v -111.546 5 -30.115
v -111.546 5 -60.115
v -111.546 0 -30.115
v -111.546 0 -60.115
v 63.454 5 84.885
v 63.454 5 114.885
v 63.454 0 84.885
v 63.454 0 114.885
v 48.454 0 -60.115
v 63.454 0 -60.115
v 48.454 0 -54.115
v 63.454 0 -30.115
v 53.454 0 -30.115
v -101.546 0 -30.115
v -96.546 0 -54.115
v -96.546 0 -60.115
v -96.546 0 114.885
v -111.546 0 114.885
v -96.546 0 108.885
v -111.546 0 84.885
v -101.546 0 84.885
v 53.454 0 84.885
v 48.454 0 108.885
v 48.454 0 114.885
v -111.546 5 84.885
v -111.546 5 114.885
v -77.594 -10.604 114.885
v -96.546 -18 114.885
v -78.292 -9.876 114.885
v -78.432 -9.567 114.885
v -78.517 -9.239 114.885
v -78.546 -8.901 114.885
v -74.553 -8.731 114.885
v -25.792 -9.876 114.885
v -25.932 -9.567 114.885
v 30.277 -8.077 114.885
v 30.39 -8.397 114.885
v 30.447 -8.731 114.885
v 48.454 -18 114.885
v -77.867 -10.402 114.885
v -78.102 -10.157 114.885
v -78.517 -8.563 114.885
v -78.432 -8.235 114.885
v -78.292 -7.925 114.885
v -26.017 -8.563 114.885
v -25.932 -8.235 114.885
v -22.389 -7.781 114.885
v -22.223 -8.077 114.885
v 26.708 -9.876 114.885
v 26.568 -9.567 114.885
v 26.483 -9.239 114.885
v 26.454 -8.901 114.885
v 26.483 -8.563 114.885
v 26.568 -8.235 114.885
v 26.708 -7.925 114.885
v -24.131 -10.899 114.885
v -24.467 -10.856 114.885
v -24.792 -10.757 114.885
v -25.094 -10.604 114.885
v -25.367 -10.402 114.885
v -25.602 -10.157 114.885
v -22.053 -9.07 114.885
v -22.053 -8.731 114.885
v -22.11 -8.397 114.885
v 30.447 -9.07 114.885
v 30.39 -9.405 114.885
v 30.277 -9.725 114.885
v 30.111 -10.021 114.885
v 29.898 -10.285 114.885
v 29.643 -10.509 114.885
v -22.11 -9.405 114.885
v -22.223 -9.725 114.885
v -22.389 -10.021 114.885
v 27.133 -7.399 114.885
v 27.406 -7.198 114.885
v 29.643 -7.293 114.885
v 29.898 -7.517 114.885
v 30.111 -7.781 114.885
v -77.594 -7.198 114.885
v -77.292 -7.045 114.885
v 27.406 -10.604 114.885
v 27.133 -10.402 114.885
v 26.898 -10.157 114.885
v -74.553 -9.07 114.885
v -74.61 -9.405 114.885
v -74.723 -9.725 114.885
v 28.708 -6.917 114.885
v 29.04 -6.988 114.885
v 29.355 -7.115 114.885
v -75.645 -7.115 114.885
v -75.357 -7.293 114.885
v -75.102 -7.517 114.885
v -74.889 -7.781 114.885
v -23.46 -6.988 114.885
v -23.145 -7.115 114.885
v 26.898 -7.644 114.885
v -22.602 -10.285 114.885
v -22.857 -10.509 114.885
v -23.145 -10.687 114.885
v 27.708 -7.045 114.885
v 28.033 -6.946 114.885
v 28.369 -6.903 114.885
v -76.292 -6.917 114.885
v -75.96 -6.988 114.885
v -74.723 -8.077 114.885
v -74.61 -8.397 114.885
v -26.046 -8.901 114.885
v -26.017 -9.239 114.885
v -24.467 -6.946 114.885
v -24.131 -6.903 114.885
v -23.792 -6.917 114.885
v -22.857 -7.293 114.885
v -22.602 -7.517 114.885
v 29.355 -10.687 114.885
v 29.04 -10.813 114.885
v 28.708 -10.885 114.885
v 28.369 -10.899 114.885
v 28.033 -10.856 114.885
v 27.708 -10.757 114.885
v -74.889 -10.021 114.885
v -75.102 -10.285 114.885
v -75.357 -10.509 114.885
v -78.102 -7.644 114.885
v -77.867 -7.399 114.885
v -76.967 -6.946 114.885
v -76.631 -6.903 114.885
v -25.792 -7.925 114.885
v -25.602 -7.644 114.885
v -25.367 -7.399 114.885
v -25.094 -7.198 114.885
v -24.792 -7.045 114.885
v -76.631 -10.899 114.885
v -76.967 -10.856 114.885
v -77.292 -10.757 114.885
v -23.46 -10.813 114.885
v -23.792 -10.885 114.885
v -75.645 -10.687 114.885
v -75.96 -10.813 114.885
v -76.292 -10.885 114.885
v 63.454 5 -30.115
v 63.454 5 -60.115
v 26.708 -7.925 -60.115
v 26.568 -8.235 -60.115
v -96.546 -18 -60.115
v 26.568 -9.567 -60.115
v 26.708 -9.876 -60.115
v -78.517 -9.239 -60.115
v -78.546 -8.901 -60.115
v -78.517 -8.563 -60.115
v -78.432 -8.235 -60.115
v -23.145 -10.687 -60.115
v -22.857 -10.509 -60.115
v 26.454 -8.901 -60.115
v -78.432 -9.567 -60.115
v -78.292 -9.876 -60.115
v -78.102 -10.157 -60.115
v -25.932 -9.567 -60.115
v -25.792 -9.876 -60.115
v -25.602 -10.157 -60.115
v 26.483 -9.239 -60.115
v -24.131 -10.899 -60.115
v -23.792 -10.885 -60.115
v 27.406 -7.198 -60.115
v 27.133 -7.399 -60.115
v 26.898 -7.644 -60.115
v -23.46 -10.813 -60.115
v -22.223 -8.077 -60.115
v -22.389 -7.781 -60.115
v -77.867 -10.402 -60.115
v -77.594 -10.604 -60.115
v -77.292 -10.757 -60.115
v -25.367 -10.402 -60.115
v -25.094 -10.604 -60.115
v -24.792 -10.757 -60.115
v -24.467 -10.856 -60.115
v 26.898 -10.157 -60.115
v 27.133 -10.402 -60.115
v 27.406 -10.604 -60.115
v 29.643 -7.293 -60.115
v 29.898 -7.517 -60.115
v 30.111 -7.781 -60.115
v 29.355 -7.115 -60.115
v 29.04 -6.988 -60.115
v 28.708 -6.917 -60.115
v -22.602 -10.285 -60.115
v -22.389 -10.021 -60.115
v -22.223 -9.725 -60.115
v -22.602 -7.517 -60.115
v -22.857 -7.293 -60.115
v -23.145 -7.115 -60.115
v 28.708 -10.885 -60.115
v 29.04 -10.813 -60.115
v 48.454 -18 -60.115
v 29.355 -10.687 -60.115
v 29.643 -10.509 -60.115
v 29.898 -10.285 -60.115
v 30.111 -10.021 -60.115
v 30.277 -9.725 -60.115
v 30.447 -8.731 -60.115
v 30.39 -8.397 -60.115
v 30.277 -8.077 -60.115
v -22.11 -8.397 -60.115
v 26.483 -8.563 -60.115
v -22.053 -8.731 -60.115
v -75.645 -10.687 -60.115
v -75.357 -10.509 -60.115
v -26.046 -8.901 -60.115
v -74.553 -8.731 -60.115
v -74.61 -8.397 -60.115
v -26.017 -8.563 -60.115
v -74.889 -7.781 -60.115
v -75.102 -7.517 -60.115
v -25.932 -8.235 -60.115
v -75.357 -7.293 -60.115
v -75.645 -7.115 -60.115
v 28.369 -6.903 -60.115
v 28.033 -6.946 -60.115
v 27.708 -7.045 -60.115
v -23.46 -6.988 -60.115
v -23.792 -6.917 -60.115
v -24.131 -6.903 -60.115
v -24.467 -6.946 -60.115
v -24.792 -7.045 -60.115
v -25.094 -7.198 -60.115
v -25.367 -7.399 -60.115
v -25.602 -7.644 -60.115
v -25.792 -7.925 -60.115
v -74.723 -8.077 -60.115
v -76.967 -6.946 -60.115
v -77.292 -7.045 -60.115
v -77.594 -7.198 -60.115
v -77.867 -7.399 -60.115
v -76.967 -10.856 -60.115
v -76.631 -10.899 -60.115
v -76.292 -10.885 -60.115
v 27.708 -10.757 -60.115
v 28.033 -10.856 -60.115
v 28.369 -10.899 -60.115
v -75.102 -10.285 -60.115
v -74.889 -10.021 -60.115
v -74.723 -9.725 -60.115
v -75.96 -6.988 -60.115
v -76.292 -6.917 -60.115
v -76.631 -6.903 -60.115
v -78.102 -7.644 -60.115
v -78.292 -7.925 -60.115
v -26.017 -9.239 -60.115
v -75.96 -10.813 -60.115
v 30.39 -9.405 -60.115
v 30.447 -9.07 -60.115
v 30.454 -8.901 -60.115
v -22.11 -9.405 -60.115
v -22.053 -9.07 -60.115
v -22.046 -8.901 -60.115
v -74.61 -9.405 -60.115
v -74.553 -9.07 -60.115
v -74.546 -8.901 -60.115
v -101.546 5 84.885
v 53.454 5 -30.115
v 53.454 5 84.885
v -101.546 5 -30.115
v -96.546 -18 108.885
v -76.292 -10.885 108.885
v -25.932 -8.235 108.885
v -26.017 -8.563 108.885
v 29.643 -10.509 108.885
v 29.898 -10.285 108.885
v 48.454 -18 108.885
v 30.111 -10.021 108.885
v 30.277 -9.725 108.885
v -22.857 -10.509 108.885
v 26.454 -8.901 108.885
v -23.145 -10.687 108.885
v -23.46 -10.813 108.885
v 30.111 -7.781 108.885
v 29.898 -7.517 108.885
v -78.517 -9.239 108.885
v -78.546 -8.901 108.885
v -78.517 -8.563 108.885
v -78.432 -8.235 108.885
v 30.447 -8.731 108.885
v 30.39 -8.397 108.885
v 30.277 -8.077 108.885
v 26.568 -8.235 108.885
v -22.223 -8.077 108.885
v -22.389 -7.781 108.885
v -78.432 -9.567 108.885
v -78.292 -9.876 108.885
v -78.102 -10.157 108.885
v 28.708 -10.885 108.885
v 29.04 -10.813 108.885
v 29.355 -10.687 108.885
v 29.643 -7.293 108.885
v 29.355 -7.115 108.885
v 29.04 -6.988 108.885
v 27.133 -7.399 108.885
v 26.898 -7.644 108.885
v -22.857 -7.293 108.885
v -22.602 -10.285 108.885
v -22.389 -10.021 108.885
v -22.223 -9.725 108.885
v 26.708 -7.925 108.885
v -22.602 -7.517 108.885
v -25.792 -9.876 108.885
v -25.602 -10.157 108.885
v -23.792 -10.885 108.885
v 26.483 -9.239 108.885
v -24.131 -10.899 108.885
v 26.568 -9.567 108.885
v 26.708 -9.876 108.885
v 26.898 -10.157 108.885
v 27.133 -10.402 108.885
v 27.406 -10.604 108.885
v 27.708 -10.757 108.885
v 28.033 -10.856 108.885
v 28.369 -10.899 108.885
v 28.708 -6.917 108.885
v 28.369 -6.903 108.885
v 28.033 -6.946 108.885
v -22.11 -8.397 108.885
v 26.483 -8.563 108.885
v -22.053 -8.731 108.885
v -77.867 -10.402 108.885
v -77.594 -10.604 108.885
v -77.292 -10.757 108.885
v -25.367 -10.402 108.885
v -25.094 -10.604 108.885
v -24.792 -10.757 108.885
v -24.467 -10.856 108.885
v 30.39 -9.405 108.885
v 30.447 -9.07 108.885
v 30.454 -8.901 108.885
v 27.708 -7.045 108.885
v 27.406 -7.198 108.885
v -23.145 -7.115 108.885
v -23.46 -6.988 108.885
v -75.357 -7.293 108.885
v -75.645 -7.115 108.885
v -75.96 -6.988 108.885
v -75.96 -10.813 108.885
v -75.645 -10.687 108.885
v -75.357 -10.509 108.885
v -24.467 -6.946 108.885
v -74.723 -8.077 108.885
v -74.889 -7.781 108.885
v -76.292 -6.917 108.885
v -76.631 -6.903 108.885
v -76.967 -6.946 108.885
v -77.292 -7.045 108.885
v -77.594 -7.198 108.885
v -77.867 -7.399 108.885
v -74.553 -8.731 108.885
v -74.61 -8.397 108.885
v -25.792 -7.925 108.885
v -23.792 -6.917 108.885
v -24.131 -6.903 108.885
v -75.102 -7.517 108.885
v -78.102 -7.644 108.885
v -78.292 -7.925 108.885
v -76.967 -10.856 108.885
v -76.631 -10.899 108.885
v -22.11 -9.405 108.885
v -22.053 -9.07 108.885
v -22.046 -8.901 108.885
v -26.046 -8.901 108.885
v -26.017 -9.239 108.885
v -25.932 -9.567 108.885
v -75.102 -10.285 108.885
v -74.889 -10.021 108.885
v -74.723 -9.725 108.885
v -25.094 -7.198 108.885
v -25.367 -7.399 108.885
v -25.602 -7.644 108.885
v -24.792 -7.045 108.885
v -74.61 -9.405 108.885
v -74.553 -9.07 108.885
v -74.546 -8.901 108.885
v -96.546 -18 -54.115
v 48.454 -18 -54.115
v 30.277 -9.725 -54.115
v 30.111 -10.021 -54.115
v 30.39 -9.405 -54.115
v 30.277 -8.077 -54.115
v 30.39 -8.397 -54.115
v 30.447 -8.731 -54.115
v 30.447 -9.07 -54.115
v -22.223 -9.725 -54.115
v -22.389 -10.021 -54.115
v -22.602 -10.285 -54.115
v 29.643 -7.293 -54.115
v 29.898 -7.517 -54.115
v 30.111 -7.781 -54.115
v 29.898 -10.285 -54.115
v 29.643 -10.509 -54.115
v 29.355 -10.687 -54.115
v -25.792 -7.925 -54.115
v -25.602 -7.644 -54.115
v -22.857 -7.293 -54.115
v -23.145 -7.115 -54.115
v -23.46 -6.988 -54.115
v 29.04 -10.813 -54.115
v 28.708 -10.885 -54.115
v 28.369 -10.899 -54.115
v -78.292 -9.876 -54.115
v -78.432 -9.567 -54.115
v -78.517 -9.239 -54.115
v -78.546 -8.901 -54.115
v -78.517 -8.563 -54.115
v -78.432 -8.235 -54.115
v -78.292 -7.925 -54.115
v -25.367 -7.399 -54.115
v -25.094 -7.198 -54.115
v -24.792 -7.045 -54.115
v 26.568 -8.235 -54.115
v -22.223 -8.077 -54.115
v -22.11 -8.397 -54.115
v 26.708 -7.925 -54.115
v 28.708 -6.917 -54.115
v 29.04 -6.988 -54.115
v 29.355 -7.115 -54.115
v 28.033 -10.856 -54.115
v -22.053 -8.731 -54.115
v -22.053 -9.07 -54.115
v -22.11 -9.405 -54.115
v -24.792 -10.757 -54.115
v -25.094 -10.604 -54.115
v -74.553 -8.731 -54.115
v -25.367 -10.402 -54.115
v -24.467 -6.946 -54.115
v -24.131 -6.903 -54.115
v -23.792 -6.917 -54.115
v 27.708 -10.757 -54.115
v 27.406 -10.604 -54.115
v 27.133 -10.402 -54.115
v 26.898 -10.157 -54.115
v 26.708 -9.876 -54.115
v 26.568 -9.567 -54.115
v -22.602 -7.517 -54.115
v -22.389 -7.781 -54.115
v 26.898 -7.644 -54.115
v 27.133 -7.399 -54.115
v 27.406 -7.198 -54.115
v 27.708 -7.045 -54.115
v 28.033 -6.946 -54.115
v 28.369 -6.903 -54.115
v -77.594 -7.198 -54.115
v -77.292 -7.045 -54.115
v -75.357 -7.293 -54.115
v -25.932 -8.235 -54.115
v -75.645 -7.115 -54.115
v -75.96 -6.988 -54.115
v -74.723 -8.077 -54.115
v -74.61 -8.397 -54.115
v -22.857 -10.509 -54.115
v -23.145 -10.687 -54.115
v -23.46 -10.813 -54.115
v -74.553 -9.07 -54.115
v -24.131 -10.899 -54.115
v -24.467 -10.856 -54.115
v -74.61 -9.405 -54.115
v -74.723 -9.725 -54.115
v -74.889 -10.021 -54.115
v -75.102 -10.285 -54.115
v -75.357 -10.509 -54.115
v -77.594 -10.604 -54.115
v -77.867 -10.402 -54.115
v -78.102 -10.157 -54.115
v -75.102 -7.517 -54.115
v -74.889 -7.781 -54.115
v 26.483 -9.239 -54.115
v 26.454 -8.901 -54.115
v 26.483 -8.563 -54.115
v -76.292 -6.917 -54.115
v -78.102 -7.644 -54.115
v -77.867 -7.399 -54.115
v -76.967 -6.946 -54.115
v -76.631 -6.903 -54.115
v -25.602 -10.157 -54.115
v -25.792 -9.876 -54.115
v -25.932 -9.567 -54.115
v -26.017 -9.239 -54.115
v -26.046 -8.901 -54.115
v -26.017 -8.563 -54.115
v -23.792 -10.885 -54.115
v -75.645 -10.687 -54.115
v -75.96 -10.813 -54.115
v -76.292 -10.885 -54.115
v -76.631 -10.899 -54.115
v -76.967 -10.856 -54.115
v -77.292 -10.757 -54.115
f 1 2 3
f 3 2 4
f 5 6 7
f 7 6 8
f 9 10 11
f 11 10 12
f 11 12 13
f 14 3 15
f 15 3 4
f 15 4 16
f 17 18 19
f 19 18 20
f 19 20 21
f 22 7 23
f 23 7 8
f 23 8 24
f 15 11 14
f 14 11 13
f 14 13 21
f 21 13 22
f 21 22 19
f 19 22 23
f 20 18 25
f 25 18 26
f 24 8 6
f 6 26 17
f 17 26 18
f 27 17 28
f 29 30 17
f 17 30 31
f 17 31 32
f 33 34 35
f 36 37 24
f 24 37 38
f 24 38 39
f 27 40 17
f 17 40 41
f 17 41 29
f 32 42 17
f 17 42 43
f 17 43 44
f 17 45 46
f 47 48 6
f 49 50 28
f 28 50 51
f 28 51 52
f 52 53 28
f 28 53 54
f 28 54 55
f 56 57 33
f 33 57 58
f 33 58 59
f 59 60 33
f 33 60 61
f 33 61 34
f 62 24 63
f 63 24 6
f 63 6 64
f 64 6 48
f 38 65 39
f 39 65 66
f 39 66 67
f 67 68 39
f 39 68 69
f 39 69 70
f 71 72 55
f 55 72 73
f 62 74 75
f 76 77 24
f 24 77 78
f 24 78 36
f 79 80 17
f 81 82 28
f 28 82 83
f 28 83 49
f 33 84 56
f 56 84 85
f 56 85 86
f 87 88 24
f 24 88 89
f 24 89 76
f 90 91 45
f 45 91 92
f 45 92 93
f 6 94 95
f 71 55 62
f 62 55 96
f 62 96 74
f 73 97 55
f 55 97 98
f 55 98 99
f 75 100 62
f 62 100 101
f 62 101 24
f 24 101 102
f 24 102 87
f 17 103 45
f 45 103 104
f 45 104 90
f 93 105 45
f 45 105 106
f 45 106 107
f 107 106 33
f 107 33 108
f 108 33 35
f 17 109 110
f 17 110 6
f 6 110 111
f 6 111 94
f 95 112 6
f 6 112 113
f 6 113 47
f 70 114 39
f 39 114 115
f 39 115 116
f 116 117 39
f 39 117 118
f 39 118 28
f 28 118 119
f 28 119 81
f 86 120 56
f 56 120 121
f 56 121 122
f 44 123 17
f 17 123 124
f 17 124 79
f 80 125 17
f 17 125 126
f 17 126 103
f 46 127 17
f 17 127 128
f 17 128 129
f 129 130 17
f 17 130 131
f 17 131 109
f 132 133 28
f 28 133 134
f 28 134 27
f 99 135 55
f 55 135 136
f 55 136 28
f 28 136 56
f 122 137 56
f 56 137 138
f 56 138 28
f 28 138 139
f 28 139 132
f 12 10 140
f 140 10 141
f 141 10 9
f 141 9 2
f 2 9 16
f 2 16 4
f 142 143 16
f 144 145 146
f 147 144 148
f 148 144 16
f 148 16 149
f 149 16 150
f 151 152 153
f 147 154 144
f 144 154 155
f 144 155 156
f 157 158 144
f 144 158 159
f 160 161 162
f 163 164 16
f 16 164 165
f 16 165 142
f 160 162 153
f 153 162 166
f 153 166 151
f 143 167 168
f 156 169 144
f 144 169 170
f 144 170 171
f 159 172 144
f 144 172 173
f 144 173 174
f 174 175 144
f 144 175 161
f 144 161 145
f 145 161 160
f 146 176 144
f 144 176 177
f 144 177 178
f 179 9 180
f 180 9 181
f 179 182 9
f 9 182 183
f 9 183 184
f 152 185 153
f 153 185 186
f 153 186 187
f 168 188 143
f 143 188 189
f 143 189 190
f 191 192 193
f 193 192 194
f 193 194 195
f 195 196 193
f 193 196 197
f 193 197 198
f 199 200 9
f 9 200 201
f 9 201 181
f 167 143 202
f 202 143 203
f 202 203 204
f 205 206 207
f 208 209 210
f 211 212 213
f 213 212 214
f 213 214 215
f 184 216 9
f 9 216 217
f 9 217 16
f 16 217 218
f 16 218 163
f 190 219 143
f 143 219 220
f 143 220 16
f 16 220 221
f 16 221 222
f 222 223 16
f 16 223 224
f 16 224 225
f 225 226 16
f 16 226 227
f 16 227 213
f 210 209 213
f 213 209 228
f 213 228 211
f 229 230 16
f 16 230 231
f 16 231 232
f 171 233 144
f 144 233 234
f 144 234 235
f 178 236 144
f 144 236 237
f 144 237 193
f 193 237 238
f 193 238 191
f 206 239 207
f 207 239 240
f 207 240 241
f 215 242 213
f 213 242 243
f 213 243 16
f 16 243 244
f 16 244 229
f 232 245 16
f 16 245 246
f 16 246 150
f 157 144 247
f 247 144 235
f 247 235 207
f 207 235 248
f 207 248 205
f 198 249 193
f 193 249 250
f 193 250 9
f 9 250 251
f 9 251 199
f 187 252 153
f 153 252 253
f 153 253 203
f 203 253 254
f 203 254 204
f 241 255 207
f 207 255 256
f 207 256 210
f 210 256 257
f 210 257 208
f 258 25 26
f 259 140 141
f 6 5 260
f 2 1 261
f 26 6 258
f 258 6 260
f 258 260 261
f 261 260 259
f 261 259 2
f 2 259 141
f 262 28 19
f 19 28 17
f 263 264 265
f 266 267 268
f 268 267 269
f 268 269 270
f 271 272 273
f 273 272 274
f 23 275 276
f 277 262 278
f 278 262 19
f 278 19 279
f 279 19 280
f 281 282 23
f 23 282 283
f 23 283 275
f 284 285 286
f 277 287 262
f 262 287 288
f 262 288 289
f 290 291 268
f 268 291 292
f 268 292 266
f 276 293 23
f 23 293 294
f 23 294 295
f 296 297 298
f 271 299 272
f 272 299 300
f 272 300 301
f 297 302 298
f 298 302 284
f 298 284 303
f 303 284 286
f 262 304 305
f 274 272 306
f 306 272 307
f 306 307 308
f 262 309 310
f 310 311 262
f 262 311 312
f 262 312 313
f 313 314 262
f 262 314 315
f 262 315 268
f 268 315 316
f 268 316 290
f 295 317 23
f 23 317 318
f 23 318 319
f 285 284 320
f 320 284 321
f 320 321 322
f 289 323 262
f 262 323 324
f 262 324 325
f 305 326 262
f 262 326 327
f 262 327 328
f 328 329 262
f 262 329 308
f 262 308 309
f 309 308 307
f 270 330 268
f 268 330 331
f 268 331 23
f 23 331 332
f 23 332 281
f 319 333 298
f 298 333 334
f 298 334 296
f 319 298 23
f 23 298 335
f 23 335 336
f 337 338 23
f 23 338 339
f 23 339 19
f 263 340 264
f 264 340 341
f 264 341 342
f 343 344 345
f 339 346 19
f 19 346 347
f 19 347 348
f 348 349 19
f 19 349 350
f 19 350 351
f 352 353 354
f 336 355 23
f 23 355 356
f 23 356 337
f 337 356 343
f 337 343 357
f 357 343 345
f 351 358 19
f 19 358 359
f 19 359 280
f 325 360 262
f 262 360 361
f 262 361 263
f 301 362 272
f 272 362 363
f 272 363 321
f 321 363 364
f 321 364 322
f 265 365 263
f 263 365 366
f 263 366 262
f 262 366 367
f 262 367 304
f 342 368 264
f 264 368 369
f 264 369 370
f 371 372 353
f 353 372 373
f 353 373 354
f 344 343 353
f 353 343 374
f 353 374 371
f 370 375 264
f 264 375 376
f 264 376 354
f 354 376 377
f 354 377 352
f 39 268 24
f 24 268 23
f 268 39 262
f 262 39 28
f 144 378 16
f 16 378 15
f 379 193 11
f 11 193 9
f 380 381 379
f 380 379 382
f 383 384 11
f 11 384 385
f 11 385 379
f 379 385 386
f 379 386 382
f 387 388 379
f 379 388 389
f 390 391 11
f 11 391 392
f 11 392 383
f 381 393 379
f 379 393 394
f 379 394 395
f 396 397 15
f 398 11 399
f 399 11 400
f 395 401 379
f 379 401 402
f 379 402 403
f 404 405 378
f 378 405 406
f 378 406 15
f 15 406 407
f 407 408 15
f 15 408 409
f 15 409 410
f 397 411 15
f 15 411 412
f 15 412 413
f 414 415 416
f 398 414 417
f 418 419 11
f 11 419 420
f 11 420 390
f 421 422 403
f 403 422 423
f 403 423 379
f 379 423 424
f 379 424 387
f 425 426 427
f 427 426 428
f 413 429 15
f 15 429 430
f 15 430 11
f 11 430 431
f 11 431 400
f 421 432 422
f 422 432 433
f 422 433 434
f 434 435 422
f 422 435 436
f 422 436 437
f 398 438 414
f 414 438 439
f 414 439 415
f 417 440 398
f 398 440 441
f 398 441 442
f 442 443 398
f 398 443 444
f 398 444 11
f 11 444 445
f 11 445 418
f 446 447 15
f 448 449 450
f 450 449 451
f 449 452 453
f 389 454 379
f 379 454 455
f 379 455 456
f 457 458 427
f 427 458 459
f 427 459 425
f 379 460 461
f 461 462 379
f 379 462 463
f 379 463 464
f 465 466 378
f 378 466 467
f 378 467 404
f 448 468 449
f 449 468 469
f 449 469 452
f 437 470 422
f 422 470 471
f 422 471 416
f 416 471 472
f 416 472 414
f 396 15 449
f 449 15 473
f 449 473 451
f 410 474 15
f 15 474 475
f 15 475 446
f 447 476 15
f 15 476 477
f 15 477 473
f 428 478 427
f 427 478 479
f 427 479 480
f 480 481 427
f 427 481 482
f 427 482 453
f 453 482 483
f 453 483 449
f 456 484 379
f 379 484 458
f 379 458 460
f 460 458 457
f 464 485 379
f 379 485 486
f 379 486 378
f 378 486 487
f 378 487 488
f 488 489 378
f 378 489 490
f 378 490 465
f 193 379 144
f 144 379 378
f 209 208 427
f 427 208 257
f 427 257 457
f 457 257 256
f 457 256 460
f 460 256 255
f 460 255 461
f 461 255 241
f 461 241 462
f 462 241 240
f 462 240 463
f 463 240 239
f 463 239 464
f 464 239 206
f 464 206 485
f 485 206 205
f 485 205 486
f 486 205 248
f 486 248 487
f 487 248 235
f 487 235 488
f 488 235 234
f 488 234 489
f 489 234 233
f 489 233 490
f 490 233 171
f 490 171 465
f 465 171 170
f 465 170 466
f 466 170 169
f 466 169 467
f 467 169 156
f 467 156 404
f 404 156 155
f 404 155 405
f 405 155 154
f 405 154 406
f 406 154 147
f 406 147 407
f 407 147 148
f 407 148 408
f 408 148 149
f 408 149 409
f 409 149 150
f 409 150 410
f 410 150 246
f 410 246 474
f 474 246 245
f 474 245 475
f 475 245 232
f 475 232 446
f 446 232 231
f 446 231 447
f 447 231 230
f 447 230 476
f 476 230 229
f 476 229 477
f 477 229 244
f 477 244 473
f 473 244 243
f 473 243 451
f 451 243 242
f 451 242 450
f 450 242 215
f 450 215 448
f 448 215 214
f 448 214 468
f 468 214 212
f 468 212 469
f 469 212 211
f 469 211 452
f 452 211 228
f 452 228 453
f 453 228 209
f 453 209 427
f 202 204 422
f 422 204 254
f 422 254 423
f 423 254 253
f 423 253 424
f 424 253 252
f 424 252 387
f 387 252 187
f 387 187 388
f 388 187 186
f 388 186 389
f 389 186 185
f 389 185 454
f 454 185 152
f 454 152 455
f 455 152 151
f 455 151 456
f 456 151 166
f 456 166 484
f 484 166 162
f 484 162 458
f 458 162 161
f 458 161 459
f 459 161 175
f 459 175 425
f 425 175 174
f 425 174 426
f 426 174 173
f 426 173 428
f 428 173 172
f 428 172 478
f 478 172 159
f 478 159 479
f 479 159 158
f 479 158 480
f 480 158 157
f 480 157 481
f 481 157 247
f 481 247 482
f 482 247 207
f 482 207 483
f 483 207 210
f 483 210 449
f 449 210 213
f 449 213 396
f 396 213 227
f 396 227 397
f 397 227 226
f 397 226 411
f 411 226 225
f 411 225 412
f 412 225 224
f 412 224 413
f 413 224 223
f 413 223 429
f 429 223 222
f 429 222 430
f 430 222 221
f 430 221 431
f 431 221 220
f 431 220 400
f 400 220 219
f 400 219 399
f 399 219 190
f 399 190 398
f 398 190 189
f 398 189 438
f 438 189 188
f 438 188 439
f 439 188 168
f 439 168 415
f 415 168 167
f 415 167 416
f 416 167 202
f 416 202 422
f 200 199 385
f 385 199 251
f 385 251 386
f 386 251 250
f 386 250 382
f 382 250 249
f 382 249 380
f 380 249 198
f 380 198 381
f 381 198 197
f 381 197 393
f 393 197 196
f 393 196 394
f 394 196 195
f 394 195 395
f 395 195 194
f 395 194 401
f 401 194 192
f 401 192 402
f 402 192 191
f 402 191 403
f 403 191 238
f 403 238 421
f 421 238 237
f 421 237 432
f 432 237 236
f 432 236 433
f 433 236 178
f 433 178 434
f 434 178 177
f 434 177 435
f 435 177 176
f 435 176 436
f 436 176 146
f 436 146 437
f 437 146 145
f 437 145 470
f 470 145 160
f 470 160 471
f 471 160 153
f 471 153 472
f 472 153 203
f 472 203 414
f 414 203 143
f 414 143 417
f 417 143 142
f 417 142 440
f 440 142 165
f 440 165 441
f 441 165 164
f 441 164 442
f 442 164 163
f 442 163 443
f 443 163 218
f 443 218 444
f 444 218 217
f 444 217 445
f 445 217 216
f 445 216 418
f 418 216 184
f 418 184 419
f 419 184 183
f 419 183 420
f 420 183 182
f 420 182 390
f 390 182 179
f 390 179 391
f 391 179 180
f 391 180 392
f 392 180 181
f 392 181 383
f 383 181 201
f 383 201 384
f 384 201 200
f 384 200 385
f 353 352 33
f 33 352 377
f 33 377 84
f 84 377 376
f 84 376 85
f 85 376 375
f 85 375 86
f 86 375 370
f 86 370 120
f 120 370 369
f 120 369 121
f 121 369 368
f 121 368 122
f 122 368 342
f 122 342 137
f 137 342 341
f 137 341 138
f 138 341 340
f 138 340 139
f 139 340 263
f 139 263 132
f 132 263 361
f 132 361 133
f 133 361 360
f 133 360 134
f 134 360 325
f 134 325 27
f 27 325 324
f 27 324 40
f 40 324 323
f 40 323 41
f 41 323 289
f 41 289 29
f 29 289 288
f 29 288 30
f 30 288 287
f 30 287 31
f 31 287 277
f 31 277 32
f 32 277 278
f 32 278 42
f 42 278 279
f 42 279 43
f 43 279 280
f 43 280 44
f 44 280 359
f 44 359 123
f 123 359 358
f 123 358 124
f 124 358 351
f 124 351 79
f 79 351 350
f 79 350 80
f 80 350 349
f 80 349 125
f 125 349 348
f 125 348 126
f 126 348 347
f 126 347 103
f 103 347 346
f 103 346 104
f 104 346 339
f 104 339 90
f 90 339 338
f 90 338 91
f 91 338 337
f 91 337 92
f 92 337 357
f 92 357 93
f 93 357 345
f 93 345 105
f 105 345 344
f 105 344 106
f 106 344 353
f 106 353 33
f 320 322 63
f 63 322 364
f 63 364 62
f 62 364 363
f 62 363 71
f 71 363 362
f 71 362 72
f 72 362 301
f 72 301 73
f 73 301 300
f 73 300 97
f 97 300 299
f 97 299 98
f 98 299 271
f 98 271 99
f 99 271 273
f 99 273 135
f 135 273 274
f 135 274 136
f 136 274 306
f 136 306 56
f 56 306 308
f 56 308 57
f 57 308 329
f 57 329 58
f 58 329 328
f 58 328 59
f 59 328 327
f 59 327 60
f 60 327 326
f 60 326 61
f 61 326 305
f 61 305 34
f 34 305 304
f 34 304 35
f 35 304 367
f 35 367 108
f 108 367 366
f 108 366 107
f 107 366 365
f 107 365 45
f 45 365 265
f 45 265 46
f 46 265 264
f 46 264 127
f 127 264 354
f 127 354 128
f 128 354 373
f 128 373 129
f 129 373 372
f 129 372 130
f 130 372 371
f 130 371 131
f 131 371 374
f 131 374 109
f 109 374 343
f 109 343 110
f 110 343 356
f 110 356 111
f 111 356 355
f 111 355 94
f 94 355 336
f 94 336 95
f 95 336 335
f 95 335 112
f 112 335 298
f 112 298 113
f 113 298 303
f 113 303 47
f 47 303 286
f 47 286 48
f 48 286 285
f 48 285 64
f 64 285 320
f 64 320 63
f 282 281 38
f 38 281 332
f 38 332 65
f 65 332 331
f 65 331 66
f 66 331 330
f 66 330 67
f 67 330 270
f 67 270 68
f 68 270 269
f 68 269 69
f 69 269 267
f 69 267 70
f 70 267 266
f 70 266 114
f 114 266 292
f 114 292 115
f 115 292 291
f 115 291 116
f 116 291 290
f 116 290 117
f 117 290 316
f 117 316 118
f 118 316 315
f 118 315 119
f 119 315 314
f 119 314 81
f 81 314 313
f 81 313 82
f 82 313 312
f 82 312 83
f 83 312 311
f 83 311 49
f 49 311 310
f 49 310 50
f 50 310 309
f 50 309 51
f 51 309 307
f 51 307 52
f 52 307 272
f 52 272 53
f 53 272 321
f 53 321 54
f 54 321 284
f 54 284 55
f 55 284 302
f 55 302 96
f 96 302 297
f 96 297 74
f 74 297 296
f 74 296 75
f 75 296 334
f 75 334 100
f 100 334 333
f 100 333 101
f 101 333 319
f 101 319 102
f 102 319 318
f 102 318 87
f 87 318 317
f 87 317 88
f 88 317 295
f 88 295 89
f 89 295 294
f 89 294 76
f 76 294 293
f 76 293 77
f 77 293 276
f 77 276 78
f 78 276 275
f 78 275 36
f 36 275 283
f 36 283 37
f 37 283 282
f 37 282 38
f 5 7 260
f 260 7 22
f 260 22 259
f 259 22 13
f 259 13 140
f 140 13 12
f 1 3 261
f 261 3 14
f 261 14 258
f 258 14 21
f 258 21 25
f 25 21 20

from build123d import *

# Parameters (mm, degrees)
SKETCH1_W               = 175
SKETCH1_H               = 175
BOSS_EXTRUDE1_DEPTH     = 5
SKETCH3_W               = 145
SKETCH3_H               = 6
BOSS_EXTRUDE3_DEPTH     = 18
SKETCH4_R               = 2
CUT_EXTRUDE2_DEPTH      = 1
CUT_EXTRUDE2_DEPTH_BACK = 176
SKETCH5_W               = 10
SKETCH5_H               = 115
CUT_EXTRUDE3_DEPTH      = 10


with BuildPart() as part:
    # Sketch1 → Boss-Extrude1 (new body)
    with BuildSketch(Plane(origin=(0, 0, 0), x_dir=(1, 0, 0), z_dir=(0, 1, 0))):
        with Locations((-24.045801527, -27.385496183)):
            Rectangle(SKETCH1_W, SKETCH1_H)
    extrude(amount=BOSS_EXTRUDE1_DEPTH)

    # Sketch3 → Boss-Extrude3 (add)
    with BuildSketch(Plane.XZ):
        with Locations((-24.045801527, 111.885496183)):
            Rectangle(SKETCH3_W, SKETCH3_H)
        with Locations((-24.045801527, -57.114503817)):
            Rectangle(SKETCH3_W, SKETCH3_H)
    extrude(amount=BOSS_EXTRUDE3_DEPTH)

    # Sketch4 → Cut-Extrude2 (cut, two sides)
    with BuildSketch(Plane(origin=(0, 0, -60.114503817), x_dir=(-1, 0, 0), z_dir=(0, 0, -1))) as cut_extrude2_sk:
        with Locations((-28.454198473, -8.900832872)):
            Circle(SKETCH4_R)
        with Locations((24.045801527, -8.900832872)):
            Circle(SKETCH4_R)
        with Locations((76.545801527, -8.900832872)):
            Circle(SKETCH4_R)
    extrude(amount=CUT_EXTRUDE2_DEPTH, mode=Mode.SUBTRACT)
    extrude(cut_extrude2_sk.sketch, amount=-CUT_EXTRUDE2_DEPTH_BACK, mode=Mode.SUBTRACT)

    # Sketch5 → Cut-Extrude3 (cut)
    with BuildSketch(Plane(origin=(0, 5, 0), x_dir=(1, 0, 0), z_dir=(0, 1, 0))):
        with Locations((-106.545801527, -27.385496183)):
            Rectangle(SKETCH5_W, SKETCH5_H)
        with Locations((58.454198473, -27.385496183)):
            Rectangle(SKETCH5_W, SKETCH5_H)
    extrude(amount=-CUT_EXTRUDE3_DEPTH, mode=Mode.SUBTRACT)


solid = part.part
